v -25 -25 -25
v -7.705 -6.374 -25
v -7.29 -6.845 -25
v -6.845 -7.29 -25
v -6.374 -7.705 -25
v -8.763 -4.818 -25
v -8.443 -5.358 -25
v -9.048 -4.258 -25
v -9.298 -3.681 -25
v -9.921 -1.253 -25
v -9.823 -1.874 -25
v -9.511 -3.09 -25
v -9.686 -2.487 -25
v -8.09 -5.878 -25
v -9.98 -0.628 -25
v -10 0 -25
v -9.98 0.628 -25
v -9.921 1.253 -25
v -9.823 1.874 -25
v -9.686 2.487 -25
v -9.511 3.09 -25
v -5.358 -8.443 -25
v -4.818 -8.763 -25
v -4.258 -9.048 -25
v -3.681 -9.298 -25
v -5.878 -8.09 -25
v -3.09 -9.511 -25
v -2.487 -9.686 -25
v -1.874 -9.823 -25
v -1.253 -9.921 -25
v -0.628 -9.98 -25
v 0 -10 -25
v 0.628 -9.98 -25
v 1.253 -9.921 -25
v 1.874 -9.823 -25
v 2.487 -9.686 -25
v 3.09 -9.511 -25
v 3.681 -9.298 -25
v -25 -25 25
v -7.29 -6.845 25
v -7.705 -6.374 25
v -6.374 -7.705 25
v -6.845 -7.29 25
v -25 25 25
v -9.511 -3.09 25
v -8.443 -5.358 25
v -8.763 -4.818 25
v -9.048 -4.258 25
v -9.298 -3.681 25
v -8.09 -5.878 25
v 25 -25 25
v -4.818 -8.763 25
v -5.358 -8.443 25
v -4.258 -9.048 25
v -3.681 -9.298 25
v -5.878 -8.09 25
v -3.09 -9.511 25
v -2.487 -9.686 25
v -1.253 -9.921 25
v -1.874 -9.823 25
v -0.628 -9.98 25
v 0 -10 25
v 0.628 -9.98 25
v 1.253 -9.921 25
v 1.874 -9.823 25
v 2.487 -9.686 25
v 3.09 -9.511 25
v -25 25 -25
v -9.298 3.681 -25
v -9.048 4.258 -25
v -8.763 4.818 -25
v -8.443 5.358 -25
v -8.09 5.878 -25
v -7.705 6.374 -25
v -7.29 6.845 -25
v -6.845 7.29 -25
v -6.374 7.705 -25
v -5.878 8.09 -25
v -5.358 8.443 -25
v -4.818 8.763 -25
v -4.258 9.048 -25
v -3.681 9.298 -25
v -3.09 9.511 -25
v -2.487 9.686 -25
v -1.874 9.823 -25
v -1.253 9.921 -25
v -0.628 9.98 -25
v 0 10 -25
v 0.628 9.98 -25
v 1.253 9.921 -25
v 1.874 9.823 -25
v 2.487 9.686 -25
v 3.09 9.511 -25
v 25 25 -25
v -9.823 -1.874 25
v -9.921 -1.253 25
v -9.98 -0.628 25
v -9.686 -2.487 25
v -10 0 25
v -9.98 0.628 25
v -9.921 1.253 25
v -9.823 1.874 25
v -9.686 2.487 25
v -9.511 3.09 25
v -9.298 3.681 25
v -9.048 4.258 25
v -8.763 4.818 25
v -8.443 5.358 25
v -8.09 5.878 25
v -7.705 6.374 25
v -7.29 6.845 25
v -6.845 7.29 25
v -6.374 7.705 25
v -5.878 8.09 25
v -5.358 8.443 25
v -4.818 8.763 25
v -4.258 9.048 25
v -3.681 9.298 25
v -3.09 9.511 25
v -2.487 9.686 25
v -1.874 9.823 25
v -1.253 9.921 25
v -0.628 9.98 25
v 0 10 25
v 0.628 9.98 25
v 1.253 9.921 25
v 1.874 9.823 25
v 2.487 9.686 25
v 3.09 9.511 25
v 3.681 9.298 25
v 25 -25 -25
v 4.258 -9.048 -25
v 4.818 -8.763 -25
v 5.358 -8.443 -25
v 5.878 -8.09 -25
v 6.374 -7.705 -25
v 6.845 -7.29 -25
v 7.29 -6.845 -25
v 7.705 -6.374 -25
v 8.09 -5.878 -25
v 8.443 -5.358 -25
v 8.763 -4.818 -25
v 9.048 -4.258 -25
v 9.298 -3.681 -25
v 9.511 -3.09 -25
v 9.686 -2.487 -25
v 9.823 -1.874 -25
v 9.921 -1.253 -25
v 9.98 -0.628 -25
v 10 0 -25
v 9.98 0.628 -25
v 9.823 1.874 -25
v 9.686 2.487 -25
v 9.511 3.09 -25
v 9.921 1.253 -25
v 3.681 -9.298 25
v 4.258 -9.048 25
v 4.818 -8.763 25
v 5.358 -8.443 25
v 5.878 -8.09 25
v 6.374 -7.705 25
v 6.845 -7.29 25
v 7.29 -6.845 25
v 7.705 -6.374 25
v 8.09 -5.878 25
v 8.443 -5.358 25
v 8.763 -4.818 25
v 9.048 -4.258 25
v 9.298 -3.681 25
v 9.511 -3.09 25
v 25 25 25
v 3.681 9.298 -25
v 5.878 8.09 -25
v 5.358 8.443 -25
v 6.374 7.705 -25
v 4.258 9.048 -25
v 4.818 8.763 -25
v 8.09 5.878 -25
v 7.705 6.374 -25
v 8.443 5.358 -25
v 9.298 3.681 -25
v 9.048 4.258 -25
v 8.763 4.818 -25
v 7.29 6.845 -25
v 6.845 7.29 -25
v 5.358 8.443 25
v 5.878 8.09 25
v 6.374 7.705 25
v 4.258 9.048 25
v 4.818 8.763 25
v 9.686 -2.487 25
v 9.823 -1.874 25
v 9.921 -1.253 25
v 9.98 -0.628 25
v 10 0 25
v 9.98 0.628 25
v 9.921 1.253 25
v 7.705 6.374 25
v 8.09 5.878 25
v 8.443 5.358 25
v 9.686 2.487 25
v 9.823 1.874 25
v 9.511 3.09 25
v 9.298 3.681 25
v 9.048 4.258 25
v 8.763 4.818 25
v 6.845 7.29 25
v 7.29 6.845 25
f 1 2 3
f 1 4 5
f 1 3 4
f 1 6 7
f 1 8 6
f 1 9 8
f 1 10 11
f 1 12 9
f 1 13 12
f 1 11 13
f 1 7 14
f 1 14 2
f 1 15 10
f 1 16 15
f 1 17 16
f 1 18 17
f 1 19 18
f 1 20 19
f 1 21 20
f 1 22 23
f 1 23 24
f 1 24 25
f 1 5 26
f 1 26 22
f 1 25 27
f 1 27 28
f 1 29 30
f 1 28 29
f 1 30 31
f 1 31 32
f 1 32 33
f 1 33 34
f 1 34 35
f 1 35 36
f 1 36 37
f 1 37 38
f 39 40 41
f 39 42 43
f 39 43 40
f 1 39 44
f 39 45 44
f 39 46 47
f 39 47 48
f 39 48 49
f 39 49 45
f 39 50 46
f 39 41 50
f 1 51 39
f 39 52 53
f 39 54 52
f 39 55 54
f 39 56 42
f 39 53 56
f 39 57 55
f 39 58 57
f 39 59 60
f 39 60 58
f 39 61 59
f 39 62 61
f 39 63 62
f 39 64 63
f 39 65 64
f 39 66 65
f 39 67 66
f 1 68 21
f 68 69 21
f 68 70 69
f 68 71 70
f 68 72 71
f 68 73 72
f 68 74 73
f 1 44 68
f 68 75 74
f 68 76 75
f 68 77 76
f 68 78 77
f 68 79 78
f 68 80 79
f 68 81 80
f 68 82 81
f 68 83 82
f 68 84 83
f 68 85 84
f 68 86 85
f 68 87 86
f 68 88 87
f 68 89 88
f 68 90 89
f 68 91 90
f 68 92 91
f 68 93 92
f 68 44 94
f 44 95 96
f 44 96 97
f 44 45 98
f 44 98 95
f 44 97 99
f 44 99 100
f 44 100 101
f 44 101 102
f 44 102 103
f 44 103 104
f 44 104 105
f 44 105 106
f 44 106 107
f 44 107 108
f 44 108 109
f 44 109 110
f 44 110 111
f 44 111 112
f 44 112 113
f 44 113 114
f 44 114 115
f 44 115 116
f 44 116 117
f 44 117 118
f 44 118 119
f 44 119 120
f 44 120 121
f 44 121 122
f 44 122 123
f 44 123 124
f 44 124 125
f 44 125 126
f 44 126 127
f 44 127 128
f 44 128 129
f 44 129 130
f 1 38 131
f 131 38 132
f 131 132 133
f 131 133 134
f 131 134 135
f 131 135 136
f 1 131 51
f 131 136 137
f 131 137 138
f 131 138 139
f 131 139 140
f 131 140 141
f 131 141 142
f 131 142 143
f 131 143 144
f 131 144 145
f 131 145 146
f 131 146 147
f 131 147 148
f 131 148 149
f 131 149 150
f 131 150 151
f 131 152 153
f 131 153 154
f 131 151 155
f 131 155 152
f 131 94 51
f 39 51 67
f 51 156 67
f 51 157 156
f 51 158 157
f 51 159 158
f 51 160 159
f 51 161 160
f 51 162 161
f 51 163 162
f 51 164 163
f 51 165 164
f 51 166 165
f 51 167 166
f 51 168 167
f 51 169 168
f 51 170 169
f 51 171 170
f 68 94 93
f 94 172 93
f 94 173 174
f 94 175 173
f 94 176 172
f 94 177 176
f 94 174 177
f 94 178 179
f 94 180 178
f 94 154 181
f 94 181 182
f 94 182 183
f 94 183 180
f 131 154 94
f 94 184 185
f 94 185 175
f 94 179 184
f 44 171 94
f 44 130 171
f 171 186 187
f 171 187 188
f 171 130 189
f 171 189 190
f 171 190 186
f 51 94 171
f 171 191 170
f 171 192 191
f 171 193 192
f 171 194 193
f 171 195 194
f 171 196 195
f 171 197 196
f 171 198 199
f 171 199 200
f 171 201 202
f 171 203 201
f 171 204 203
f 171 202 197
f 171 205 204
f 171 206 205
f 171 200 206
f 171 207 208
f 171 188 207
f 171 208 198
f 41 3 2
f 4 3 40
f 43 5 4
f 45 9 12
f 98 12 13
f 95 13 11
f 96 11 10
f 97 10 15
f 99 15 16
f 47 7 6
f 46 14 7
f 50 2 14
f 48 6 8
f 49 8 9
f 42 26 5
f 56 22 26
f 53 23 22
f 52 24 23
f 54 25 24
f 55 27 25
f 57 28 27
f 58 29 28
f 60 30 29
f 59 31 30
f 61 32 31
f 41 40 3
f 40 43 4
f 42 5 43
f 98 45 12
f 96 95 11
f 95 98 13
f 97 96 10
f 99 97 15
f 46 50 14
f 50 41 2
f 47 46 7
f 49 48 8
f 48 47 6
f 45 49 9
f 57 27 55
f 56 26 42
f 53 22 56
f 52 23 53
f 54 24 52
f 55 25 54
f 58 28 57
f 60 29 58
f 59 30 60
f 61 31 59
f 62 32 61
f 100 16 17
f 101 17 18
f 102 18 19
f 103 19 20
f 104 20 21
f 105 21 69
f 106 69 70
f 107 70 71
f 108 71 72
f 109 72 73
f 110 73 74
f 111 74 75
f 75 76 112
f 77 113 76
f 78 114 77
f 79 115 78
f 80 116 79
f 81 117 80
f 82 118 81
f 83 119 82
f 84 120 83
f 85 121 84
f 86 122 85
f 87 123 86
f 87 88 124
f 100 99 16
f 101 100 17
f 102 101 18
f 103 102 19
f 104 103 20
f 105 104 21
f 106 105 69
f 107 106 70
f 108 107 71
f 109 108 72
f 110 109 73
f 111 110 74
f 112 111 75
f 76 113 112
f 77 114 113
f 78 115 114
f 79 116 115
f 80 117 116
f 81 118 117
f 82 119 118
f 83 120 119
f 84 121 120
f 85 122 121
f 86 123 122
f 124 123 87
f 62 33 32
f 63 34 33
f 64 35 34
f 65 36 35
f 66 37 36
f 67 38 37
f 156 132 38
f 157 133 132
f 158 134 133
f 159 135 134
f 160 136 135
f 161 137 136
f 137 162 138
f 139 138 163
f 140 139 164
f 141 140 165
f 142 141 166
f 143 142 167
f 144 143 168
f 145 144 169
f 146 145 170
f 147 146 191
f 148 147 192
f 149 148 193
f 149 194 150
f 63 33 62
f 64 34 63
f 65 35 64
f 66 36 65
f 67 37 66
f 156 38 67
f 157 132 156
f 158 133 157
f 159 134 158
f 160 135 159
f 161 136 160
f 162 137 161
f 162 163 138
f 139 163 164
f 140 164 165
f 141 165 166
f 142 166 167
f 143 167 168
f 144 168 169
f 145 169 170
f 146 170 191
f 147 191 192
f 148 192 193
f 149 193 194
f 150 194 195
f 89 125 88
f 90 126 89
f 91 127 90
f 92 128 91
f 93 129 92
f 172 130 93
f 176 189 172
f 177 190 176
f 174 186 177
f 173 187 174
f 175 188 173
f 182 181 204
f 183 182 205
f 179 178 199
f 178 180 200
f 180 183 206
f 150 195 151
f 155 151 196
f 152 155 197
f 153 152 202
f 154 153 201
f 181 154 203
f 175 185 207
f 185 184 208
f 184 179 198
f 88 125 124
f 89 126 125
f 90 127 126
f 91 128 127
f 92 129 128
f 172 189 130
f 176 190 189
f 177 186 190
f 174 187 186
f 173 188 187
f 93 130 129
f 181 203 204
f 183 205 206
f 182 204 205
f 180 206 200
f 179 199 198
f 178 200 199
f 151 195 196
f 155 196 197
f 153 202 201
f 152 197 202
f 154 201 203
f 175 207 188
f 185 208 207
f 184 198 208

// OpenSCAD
$fn = 100;

difference() {
    cube([50, 50, 50], center=true);
    cylinder(h=52, d=20, center=true);
}
